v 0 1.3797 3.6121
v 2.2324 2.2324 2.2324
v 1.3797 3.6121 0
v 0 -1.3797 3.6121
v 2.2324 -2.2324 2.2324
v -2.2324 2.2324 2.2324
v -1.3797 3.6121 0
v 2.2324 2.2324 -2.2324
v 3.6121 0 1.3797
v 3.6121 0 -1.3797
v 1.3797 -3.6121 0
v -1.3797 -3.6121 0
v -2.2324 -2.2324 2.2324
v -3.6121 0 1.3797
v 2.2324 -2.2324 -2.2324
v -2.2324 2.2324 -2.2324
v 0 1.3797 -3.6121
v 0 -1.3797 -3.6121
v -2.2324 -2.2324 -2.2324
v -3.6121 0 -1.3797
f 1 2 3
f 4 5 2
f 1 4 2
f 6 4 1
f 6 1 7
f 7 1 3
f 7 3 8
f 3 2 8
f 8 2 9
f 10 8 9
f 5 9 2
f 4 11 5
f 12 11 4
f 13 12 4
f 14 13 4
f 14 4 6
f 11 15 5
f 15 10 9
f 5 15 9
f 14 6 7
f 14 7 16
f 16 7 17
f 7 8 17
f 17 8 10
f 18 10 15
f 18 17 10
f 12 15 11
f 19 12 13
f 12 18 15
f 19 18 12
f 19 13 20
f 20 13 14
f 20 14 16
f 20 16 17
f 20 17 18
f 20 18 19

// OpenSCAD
// file: ../maths_geodesic.scad
/*
	License: This code is placed in the public Domain
	Contributed By: Willliam A Adams
	August 2011
*/

// A couple of useful constants
Cpi = 3.14159;
Cphi = 1.61803399;
Cepsilon = 0.00000001;

 
// Function: clean
//
// Parameters:
//	n - A number that might be very close to zero
// Description:  
//	There are times when you want a very small number to 
// 	just be zero, instead of being that very small number.
//	This function will compare the number to an arbitrarily small 
//	number.  If it is smaller than the 'epsilon', then zero will be 
// 	returned.  Otherwise, the original number will be returned.
//

function clean(n) = (n < 0) ? ((n < -Cepsilon) ? n : 0) : 
	(n < Cepsilon) ? 0 : n; 

// Function: safediv
//
// Parameters
//	n - The numerator
//	d - The denominator
//
// Description:
//	Since division by zero is generally not a desirable thing, safediv
//	will return '0' whenever there is a division by zero.  Although this will
//	mask some erroneous division by zero errors, it is often the case
//	that you actually want this behavior.  So, it makes it convenient.
function safediv(n,d) = (d==0) ? 0 : n/d;


//==================================
// Degrees
//==================================

function DEGREES(radians) = (180/Cpi) * radians;

function RADIANS(degrees) = Cpi/180 * degrees;

function deg(deg, min=0, sec=0) = [deg, min, sec];

function deg_to_dec(d) = d[0] + d[1]/60 + d[2]/60/60;


//==================================
//  Spherical coordinates
//==================================

// create an instance of a spherical coordinate
// long - rotation around z -axis
// lat - latitude, starting at 0 == 'north pole'
// rad - distance from center
function sph(long, lat, rad=1) = [long, lat, rad];

// Convert spherical to cartesian
function sph_to_cart(s) = [
	clean(s[2]*sin(s[1])*cos(s[0])),  
	clean(s[2]*sin(s[1])*sin(s[0])),
	clean(s[2]*cos(s[1]))
	];

// Convert from cartesian to spherical
function sph_from_cart(c) = sph(
	atan2(c[1],c[0]), 
	atan2(sqrt(c[0]*c[0]+c[1]*c[1]), c[2]), 
	sqrt(c[0]*c[0]+c[1]*c[1]+c[2]*c[2])
	);

function sphu_from_cart(c, rad=1) = sph(
	atan2(c[1],c[0]), 
	atan2(sqrt(c[0]*c[0]+c[1]*c[1]), c[2]), 
	rad
	);

// compute the chord distance between two points on a sphere
function sph_dist(c1, c2) = sqrt(
	c1[2]*c1[2] + c2[2]*c2[2] - 
	2*c1[2]*c2[2]*
	((cos(c1[1])*cos(c2[1])) + cos(c1[0]-c2[0])*sin(c1[1])*sin(c2[1]))   
	);


//==========================================
//	Geodesic calculations
// 
//  Reference: Geodesic Math and How to Use It
//  By: Hugh Kenner
//  Second Paperback Edition (2003), p.74-75
//  http://www.amazon.com/Geodesic-Math-How-Hugh-Kenner/dp/0520239318
//
//  The book was used for reference, so if you want to check the math, 
//  you can plug in various numbers to various routines and see if you get
//  the same numbers in the book.
//
//  In general, there are enough routines here to implement the various
//  pieces necessary to make geodesic objects.
//==========================================

function poly_sum_interior_angles(sides) = (sides-2)*180;
function poly_single_interior_angle(pq) = poly_sum_interior_angles(pq[0])/pq[0];



// Given a set of coordinates, return the frequency
// Simply calculated by adding up the values of the coordinates
function geo_freq(xyz) = xyz[0]+xyz[1]+xyz[2];

// Convert between the 2D coordinates of vertices on the face triangle
// to the 3D vertices needed to calculate spherical coordinates
function geo_tri2_tri3(xyf) = [xyf[1], xyf[0]-xyf[1], xyf[2]-xyf[0]];

// Given coordinates for a vertex on the octahedron face
// return the spherical coordinates for the vertex
// class 1, method 1
function octa_class1(c) = sph(
	atan(safediv(c[0], c[1])),
	atan(sqrt(c[0]*c[0]+c[1]*c[1])/c[2]),
	1 
	);

function octa_class2(c) = sph(
	atan(c[0]/c[1]),
	atan( sqrt( 2*(c[0]*c[0]+c[1]*c[1])) /c[2]),
	1 
	);

function icosa_class1(c) = octa_class1(
	[
		c[0]*sin(72),  
		c[1]+c[0]*cos(72),  
		geo_freq(c)/2+c[2]/Cphi
	]);

function icosa_class2(c) = sph(
	atan([c0]/c[1]), 
	atan(sqrt(c[0]*c[0]+c[1]*c[1]))/cos(36)*c[2],
	1
	);
 
function tetra_class1(c) = octa_class1(
	[
		sqrt(3*c[0]),  
		2*c[1]-c[0],  
		(3*c[2]-c[0]-c[1])/sqrt(2)
	]);

function class1_icosa_chord_factor(v1, v2, freq) = sph_dist( 
		icosa_class1(geo_tri2_tri3( [v1[0], v1[1], freq])),
		icosa_class1(geo_tri2_tri3( [v2[0], v2[1], freq]))
	);
// main file
// file autogenerated by platonicSTLgen
// author: thanasi athanassiadis (thanasi@uchicago.edu)
// script dated: august 25, 2012

include <../platonic.scad>

// units are mm

rad = 3.866670;

poly = dodecahedron(rad);

for(i = [ [0.000000,0.000000,0.000000] ])
{
    translate(i)
    display_polyhedron(poly);
}

module display_polyhedron(poly) 
{
polyhedron(points = poly[0], triangles = poly[1]);
}
